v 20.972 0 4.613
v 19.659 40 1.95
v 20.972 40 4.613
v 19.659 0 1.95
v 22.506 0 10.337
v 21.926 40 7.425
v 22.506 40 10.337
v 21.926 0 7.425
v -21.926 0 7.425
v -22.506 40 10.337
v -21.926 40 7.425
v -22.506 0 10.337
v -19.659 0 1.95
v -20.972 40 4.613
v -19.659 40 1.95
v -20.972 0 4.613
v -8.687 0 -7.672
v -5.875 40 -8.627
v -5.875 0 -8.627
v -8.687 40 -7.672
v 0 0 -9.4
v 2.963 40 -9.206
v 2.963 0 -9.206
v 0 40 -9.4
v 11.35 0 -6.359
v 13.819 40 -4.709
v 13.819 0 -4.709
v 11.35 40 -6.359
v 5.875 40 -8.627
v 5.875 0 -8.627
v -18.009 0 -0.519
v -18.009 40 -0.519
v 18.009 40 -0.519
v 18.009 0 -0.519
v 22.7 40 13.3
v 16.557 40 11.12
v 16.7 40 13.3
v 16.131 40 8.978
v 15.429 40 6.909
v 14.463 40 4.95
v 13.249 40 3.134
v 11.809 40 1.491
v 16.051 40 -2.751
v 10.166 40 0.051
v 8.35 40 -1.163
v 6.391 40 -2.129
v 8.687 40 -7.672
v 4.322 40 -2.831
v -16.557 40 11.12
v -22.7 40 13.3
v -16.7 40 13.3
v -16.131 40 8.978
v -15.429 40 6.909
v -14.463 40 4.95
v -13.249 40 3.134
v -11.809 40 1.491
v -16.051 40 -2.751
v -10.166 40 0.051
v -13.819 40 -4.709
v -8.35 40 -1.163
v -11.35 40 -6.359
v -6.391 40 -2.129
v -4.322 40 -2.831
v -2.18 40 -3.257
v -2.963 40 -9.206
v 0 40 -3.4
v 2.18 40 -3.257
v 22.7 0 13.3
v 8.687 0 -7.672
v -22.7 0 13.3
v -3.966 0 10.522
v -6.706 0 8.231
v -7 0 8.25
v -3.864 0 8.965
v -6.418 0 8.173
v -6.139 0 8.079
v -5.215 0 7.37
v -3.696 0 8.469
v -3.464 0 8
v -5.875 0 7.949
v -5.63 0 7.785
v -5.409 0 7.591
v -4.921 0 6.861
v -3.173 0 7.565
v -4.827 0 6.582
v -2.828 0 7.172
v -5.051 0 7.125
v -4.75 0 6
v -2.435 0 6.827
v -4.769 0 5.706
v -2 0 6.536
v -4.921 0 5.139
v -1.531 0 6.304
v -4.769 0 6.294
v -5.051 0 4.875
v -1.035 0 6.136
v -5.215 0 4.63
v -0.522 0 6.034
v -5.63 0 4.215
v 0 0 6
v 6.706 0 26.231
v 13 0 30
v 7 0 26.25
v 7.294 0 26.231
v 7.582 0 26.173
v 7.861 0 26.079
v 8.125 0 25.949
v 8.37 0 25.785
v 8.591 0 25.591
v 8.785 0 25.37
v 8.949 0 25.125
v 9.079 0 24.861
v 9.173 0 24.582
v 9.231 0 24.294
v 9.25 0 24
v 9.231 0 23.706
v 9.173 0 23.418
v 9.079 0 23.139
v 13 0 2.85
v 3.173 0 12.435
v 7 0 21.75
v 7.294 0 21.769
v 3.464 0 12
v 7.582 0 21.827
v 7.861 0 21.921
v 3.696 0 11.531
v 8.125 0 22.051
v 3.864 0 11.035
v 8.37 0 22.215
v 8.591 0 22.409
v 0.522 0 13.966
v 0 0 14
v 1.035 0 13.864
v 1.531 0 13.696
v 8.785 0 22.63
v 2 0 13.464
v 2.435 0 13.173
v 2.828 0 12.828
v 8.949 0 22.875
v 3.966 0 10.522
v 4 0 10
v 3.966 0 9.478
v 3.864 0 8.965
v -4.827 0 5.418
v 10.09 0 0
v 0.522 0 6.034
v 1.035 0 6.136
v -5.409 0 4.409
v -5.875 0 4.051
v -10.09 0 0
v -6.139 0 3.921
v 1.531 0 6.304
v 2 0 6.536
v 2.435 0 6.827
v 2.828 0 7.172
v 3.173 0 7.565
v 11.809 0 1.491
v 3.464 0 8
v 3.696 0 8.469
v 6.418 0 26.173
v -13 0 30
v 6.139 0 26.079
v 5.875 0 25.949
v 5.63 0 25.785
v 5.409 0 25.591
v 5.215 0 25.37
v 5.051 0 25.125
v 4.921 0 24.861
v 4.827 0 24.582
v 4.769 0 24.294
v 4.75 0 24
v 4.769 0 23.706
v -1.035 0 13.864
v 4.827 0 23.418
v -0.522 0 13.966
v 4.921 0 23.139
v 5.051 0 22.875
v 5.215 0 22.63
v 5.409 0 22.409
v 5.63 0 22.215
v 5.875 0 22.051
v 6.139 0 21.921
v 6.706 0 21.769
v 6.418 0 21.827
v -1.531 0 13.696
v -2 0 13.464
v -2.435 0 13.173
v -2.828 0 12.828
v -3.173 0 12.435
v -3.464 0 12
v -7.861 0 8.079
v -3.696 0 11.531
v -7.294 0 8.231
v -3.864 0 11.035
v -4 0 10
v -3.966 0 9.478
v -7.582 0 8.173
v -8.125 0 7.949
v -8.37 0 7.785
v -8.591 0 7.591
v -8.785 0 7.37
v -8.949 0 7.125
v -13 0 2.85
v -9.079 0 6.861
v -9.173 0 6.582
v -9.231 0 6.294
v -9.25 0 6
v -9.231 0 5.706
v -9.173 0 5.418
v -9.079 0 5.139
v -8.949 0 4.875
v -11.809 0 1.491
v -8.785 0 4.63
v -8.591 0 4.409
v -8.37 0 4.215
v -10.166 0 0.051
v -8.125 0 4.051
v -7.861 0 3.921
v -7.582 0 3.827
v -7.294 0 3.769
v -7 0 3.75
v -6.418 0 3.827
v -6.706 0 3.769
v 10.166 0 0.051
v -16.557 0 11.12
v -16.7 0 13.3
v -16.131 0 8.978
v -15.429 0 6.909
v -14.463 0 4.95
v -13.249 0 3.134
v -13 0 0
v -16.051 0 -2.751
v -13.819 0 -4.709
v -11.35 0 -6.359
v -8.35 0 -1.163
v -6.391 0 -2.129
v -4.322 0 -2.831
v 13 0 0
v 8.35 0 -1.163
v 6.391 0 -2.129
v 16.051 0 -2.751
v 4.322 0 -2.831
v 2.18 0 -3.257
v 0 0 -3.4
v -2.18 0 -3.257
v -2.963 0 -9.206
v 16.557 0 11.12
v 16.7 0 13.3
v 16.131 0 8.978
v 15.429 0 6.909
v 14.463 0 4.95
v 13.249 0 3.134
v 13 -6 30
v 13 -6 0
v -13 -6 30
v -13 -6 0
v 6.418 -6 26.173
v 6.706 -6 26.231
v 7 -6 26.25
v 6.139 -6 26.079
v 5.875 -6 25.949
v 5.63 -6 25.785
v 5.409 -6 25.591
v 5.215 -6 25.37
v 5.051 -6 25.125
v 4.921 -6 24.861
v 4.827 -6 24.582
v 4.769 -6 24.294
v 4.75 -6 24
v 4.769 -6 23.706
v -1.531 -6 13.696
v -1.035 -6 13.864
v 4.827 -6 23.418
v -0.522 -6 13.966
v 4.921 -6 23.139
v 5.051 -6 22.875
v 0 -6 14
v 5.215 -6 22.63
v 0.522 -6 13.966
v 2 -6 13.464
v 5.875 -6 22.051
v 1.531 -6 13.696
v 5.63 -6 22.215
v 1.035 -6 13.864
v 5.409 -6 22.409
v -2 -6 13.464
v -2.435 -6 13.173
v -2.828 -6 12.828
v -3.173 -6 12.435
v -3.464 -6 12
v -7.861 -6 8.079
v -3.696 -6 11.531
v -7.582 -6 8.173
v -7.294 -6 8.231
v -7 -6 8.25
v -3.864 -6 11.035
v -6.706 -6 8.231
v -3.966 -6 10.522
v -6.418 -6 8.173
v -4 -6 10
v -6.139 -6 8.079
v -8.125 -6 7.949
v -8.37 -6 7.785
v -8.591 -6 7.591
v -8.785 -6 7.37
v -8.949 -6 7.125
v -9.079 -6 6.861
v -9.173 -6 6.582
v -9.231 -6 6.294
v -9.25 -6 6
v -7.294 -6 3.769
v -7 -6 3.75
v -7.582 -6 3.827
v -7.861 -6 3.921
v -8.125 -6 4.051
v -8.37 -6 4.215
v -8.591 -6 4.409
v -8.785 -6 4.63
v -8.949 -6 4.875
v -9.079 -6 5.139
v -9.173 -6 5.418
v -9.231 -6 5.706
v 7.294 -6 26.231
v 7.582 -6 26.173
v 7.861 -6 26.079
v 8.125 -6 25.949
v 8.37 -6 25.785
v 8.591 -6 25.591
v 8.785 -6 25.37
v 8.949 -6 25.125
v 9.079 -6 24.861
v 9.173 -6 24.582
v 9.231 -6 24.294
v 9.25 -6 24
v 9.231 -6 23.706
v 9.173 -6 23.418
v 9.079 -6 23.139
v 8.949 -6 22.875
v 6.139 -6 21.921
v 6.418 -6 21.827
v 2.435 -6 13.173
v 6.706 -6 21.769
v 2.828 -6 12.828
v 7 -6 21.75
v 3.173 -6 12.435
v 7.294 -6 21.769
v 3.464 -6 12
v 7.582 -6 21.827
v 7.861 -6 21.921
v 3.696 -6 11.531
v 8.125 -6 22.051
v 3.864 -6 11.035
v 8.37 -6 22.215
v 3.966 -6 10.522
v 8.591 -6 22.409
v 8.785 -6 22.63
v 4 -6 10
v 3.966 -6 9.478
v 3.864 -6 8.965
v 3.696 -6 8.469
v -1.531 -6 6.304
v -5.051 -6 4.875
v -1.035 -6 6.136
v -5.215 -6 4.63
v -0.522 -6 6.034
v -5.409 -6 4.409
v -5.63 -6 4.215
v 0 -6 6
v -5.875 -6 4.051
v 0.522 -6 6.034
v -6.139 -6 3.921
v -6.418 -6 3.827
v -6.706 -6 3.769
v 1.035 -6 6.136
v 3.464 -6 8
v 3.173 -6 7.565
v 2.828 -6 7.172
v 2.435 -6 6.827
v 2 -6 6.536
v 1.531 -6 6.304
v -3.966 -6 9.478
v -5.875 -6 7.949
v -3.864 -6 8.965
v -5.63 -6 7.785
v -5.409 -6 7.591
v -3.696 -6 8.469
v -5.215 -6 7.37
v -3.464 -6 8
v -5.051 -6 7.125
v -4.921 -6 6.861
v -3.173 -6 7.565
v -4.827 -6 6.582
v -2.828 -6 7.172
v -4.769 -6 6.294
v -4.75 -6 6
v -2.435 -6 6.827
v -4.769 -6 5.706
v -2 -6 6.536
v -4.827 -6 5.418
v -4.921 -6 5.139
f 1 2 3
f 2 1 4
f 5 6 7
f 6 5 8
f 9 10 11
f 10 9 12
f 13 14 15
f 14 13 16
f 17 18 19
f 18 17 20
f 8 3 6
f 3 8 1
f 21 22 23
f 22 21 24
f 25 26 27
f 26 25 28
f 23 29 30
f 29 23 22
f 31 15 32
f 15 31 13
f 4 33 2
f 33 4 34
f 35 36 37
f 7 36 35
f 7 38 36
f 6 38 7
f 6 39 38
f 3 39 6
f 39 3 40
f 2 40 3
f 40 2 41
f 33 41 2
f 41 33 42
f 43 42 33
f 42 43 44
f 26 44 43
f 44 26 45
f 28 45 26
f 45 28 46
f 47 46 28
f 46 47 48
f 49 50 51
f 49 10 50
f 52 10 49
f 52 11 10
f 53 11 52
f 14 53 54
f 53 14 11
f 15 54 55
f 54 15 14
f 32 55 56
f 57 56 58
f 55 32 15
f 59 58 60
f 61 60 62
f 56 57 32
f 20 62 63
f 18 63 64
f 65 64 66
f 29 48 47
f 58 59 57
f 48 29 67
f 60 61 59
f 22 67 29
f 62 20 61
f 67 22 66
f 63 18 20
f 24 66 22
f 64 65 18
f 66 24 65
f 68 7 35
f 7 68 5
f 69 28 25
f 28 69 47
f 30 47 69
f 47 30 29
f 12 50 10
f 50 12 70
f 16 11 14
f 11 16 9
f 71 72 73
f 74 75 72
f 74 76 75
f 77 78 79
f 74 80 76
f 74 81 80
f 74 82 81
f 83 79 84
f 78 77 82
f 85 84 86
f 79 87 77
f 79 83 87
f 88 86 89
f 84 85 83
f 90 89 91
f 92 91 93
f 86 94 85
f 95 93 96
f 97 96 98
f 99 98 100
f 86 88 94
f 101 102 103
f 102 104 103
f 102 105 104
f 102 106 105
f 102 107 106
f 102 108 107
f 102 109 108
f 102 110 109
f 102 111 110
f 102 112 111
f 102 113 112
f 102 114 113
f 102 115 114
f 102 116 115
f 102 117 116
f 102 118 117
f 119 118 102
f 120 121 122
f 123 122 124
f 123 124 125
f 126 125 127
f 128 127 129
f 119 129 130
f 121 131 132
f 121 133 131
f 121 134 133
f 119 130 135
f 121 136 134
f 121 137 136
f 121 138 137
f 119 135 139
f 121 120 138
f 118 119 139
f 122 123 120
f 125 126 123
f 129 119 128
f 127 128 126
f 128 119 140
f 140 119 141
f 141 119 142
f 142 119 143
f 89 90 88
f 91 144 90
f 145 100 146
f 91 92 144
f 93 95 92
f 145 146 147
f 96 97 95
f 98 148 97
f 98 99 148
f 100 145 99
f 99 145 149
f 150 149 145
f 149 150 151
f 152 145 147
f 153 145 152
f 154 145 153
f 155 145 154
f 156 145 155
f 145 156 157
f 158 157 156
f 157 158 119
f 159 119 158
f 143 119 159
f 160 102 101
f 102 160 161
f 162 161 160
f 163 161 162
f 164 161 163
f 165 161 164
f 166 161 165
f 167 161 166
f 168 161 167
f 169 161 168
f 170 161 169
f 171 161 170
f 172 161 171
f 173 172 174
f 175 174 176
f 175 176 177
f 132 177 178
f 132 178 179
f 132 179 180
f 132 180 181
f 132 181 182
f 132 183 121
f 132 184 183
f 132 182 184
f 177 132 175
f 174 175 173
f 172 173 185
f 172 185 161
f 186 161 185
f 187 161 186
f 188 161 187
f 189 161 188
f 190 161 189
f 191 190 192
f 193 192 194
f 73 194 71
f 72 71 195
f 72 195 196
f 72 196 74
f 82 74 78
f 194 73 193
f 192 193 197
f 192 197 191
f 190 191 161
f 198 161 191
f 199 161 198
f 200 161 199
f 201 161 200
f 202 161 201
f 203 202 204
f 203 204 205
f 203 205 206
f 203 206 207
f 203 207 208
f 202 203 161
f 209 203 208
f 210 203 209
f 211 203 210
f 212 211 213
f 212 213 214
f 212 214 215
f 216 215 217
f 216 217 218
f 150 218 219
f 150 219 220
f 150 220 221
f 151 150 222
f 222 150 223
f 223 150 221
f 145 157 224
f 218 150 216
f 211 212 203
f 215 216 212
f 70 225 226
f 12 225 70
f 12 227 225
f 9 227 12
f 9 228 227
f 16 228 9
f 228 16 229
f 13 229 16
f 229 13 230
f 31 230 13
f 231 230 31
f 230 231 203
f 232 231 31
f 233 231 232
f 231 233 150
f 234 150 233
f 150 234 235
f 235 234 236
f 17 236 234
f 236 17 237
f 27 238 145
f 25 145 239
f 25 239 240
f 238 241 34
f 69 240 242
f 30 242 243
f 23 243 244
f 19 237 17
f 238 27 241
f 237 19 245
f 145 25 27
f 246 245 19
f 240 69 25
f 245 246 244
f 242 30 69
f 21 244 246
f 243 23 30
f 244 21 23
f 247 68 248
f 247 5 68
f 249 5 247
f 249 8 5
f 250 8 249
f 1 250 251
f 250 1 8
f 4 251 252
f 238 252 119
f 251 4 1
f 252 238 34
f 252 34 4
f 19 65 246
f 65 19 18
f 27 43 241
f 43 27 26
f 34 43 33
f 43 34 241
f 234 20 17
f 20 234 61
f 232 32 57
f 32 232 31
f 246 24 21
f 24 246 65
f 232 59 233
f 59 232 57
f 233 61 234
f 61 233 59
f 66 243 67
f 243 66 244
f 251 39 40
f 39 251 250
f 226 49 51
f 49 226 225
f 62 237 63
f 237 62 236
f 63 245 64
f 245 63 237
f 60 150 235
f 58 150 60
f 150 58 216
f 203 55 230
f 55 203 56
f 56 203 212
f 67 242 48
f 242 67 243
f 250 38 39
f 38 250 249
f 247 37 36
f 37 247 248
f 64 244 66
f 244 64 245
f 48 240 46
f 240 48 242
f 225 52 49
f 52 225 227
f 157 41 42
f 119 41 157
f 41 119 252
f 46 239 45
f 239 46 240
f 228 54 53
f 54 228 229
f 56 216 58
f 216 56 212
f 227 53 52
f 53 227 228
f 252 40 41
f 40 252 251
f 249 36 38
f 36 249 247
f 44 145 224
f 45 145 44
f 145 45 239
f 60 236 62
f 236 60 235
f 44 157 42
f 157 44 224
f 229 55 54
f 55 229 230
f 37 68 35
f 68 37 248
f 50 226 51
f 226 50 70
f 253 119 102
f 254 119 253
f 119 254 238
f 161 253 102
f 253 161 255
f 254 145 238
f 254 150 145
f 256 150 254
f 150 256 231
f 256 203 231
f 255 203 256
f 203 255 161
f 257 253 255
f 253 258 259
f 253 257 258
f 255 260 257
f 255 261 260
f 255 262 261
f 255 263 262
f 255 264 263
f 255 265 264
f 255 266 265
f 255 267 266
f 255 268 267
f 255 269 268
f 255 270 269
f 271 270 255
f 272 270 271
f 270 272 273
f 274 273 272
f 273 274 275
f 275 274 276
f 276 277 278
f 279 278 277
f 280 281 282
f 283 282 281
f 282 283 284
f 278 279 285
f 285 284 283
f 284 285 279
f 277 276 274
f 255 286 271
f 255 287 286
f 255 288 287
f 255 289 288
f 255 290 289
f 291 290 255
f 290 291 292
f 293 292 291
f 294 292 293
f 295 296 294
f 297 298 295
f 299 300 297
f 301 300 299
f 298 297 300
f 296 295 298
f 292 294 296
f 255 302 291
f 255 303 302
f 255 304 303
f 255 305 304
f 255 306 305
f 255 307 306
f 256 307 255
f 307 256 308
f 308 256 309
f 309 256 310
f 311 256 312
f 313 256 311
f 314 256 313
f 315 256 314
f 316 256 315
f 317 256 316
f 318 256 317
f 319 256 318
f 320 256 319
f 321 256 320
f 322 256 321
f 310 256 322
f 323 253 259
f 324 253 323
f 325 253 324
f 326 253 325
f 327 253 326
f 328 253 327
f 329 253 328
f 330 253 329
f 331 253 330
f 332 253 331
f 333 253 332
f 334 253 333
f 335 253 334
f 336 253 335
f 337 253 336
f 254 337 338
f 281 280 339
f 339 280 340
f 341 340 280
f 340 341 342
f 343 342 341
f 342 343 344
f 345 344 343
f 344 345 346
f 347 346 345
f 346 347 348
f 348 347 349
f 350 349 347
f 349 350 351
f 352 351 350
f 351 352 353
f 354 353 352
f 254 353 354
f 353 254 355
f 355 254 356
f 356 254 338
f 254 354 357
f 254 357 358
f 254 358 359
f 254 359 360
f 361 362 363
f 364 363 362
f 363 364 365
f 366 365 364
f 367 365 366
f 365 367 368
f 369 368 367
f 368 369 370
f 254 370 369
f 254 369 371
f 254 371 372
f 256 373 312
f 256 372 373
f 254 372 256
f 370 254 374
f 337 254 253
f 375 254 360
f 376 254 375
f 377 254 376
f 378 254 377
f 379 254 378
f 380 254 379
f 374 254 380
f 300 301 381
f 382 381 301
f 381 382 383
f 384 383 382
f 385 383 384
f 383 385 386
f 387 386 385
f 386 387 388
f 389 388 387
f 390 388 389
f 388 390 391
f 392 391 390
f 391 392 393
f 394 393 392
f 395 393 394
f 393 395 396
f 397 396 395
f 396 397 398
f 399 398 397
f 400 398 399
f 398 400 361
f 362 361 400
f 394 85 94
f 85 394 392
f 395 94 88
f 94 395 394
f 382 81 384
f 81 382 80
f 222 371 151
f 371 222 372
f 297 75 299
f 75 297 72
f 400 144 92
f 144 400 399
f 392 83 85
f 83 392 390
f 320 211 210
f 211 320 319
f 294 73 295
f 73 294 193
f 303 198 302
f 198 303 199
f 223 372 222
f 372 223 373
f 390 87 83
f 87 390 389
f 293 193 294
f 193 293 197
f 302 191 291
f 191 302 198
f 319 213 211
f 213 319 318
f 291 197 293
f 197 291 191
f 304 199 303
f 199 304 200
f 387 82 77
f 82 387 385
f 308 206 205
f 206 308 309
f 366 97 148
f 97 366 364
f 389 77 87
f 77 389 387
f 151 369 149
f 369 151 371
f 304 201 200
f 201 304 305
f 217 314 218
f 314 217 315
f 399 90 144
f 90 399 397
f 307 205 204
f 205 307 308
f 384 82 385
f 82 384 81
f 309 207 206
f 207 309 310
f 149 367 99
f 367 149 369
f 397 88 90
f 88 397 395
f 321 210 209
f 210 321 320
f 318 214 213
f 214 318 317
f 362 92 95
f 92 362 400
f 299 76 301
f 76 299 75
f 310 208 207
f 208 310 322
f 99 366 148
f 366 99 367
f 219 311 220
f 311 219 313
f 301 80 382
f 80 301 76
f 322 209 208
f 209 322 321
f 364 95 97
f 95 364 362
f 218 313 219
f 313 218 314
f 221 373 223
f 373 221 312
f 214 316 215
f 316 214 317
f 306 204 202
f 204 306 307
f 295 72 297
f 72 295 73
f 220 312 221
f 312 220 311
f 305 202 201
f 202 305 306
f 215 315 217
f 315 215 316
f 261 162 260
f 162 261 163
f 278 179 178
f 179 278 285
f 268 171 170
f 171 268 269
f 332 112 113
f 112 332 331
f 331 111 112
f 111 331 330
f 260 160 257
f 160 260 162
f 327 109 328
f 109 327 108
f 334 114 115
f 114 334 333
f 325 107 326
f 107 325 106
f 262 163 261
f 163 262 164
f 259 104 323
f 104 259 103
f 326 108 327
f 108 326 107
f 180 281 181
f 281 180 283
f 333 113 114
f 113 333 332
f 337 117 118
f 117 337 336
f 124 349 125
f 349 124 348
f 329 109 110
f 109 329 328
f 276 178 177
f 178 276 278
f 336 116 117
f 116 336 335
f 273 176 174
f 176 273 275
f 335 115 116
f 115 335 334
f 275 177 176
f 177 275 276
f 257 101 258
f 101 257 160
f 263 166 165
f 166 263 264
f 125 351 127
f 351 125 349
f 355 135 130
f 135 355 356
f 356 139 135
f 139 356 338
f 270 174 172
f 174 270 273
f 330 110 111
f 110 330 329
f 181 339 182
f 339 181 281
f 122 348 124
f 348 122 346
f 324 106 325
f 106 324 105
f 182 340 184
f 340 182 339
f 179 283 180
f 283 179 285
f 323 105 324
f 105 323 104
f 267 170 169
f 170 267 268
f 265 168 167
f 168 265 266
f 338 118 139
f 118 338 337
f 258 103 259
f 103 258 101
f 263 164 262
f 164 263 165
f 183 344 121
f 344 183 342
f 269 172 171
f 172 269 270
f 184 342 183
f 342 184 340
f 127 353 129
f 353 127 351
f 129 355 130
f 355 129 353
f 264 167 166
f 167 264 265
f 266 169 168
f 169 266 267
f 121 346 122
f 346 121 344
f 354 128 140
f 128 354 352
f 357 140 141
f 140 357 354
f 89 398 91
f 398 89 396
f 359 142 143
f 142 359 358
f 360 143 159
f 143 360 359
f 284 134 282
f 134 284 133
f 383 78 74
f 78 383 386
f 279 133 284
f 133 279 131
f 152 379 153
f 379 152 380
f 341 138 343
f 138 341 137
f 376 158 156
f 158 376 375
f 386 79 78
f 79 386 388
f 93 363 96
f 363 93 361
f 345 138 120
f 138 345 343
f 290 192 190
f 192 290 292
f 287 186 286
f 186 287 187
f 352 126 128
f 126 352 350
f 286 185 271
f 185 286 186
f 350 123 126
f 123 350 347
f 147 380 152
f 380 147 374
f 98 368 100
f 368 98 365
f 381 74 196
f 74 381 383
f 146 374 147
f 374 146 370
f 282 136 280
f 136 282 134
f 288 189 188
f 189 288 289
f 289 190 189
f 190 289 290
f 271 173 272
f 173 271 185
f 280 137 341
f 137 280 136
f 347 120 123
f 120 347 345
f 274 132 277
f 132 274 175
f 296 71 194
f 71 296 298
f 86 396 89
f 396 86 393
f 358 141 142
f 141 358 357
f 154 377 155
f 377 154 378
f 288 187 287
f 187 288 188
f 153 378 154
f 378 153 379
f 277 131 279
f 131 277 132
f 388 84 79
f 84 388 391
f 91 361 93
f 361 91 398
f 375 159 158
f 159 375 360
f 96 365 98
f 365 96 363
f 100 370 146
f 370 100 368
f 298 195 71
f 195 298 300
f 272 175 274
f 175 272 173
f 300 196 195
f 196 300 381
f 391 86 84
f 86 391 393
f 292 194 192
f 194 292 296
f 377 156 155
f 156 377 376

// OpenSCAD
// file: params.scad
// Shared measurements for the hookswitch assembly (handset / hook / cradle / switch).
// Real caliper measurements taken 2026-07-20 (see CAD-BACKLOG.md) — no
// longer placeholders. switch_screw_d is still a guess (pin/screw size
// wasn't calipered); verify before drilling.

// --- Handset ---
// Measured handle neck width 32.8mm; +0.6mm printer clearance so the
// barrel doesn't bind in the trough (phone_saddle.scad cuts this exact dia).
handset_barrel_d   = 32.8 + 0.6;  // = 33.4
handset_rest_len   = 60;   // length of barrel section that sits in the saddle (not calipered — neck length, adjust if handset sits too shallow/deep)

// GUESS, not calipered (2026-07-24) — full-body handset dims beyond the
// neck above. Zach says the handset "feels standard" in the hand, so
// these are sized off a typical modern corded/cordless handset (same
// ballpark as the earpiece-cup scale already used in
// zach_hookswitch_cradle.scad's imported reference STL). Good enough to
// keep wall_hook.scad/cradle work moving; replace with real numbers from
// cad/HANDSET-MEASUREMENTS.md whenever calipers are actually in hand —
// don't let this comment go stale once that happens.
handset_overall_length = 225;  // GUESS — tip of earpiece to tip of mouthpiece
handset_earpiece_d     = 50;   // GUESS — cup diameter at the ear end
handset_mouthpiece_d   = 45;   // GUESS — cup diameter at the mouth end (typically a touch smaller)
handset_weight_g       = 170;  // GUESS — informs lever spring/pivot friction choice, not geometry

// --- Hook lever (see-saw pressed down by handset weight) ---
lever_length       = 70;
lever_width        = 22;
lever_thickness    = 5;
pivot_pin_d        = 4;    // diameter of the pivot rod/pin (e.g. M4 bolt or steel rod)
pivot_offset       = 20;   // distance from lever's front edge to the pivot axis

// --- Microswitch (measured: 3-pin lever subminiature microswitch) ---
switch_body_w      = 12.9;   // body length (L)
switch_body_d      = 5.7;    // body width/thickness (W)
switch_body_h      = 6.2;    // body height (H), excludes pins & lever button
switch_lever_ext   = 4.1;    // lever extension above body top — clear this in switch_mount_h
switch_mount_hole_spacing = 6.0;  // measured mounting hole pitch
switch_screw_d     = 2.2;        // NOT calipered — guess for M2 self-tap, verify against actual pins

// --- IR blaster (persona/channel-switch signaling, see PHILOSOPHY.md #5) ---
ir_led_d           = 5;    // standard 5mm IR LED
ir_mount_w         = 20;
ir_mount_h         = 12;

// --- Earcon speaker (small dedicated driver for crt-earcon.sh beeps,
// separate from the handset earpiece -- see IDLE-BAIT.md) ---
earcon_speaker_d   = 28;   // typical small round speaker (e.g. 28mm mini driver)
earcon_grille_hole_d = 2;
earcon_grille_hole_spacing = 4;

// --- General ---
wall               = 3;
clearance          = 0.3;  // fit clearance between mating printed parts
$fn                = 48;
// main file
// Simple wall/desk-mounted phone hook: handset hangs in a curved cradle by
// its own weight. A through-hole in the hook's neck is left for a hanging
// switch (reed switch + magnet, or a small lever microswitch) to be fitted
// later once you've picked the part — this file only reserves the hole.
// Distinct from cradle.scad/hook_lever.scad (the see-saw switch assembly);
// this is the low-effort "just hang it up" version.
include <params.scad>

hook_depth       = handset_earpiece_d - 10;  // GUESS-derived: how far the hook reaches under the handset barrel
hook_wall        = 6;
neck_w           = handset_earpiece_d - 24;  // GUESS-derived, see params.scad handset_earpiece_d
neck_h           = handset_earpiece_d - 20;  // GUESS-derived
mount_hole_d     = 4.5;  // screw/bolt to the wall
switch_hole_d    = 8;    // reserved hole for hanging switch, drill/insert later
switch_hole_z    = 10;   // height up the neck where the hole sits

module wall_hook() {
  difference() {
    union() {
      // wall-mount backplate
      translate([-neck_w/2, -hook_wall, 0])
        cube([neck_w, hook_wall, neck_h]);

      // curved hook arm cradling the handset barrel
      translate([0, hook_depth/2, neck_h - handset_barrel_d/2])
        rotate([90, 0, 0])
          difference() {
            cylinder(d = handset_barrel_d + hook_wall*2, h = hook_depth, center = true);
            cylinder(d = handset_barrel_d, h = hook_depth + 2, center = true);
            // open the top third so the handset drops in/out
            translate([0, handset_barrel_d, 0])
              cube([handset_barrel_d*2, handset_barrel_d*2, hook_depth + 4], center = true);
          }
    }

    // two wall-mount screw holes
    translate([-neck_w/2 + 6, 0, 6])
      rotate([90, 0, 0]) cylinder(d = mount_hole_d, h = hook_wall + 2);
    translate([neck_w/2 - 6, 0, neck_h - 6])
      rotate([90, 0, 0]) cylinder(d = mount_hole_d, h = hook_wall + 2);

    // reserved hole for the hanging switch, installed later
    translate([0, 0, switch_hole_z])
      rotate([90, 0, 0]) cylinder(d = switch_hole_d, h = hook_wall + 2);
  }
}

wall_hook();
